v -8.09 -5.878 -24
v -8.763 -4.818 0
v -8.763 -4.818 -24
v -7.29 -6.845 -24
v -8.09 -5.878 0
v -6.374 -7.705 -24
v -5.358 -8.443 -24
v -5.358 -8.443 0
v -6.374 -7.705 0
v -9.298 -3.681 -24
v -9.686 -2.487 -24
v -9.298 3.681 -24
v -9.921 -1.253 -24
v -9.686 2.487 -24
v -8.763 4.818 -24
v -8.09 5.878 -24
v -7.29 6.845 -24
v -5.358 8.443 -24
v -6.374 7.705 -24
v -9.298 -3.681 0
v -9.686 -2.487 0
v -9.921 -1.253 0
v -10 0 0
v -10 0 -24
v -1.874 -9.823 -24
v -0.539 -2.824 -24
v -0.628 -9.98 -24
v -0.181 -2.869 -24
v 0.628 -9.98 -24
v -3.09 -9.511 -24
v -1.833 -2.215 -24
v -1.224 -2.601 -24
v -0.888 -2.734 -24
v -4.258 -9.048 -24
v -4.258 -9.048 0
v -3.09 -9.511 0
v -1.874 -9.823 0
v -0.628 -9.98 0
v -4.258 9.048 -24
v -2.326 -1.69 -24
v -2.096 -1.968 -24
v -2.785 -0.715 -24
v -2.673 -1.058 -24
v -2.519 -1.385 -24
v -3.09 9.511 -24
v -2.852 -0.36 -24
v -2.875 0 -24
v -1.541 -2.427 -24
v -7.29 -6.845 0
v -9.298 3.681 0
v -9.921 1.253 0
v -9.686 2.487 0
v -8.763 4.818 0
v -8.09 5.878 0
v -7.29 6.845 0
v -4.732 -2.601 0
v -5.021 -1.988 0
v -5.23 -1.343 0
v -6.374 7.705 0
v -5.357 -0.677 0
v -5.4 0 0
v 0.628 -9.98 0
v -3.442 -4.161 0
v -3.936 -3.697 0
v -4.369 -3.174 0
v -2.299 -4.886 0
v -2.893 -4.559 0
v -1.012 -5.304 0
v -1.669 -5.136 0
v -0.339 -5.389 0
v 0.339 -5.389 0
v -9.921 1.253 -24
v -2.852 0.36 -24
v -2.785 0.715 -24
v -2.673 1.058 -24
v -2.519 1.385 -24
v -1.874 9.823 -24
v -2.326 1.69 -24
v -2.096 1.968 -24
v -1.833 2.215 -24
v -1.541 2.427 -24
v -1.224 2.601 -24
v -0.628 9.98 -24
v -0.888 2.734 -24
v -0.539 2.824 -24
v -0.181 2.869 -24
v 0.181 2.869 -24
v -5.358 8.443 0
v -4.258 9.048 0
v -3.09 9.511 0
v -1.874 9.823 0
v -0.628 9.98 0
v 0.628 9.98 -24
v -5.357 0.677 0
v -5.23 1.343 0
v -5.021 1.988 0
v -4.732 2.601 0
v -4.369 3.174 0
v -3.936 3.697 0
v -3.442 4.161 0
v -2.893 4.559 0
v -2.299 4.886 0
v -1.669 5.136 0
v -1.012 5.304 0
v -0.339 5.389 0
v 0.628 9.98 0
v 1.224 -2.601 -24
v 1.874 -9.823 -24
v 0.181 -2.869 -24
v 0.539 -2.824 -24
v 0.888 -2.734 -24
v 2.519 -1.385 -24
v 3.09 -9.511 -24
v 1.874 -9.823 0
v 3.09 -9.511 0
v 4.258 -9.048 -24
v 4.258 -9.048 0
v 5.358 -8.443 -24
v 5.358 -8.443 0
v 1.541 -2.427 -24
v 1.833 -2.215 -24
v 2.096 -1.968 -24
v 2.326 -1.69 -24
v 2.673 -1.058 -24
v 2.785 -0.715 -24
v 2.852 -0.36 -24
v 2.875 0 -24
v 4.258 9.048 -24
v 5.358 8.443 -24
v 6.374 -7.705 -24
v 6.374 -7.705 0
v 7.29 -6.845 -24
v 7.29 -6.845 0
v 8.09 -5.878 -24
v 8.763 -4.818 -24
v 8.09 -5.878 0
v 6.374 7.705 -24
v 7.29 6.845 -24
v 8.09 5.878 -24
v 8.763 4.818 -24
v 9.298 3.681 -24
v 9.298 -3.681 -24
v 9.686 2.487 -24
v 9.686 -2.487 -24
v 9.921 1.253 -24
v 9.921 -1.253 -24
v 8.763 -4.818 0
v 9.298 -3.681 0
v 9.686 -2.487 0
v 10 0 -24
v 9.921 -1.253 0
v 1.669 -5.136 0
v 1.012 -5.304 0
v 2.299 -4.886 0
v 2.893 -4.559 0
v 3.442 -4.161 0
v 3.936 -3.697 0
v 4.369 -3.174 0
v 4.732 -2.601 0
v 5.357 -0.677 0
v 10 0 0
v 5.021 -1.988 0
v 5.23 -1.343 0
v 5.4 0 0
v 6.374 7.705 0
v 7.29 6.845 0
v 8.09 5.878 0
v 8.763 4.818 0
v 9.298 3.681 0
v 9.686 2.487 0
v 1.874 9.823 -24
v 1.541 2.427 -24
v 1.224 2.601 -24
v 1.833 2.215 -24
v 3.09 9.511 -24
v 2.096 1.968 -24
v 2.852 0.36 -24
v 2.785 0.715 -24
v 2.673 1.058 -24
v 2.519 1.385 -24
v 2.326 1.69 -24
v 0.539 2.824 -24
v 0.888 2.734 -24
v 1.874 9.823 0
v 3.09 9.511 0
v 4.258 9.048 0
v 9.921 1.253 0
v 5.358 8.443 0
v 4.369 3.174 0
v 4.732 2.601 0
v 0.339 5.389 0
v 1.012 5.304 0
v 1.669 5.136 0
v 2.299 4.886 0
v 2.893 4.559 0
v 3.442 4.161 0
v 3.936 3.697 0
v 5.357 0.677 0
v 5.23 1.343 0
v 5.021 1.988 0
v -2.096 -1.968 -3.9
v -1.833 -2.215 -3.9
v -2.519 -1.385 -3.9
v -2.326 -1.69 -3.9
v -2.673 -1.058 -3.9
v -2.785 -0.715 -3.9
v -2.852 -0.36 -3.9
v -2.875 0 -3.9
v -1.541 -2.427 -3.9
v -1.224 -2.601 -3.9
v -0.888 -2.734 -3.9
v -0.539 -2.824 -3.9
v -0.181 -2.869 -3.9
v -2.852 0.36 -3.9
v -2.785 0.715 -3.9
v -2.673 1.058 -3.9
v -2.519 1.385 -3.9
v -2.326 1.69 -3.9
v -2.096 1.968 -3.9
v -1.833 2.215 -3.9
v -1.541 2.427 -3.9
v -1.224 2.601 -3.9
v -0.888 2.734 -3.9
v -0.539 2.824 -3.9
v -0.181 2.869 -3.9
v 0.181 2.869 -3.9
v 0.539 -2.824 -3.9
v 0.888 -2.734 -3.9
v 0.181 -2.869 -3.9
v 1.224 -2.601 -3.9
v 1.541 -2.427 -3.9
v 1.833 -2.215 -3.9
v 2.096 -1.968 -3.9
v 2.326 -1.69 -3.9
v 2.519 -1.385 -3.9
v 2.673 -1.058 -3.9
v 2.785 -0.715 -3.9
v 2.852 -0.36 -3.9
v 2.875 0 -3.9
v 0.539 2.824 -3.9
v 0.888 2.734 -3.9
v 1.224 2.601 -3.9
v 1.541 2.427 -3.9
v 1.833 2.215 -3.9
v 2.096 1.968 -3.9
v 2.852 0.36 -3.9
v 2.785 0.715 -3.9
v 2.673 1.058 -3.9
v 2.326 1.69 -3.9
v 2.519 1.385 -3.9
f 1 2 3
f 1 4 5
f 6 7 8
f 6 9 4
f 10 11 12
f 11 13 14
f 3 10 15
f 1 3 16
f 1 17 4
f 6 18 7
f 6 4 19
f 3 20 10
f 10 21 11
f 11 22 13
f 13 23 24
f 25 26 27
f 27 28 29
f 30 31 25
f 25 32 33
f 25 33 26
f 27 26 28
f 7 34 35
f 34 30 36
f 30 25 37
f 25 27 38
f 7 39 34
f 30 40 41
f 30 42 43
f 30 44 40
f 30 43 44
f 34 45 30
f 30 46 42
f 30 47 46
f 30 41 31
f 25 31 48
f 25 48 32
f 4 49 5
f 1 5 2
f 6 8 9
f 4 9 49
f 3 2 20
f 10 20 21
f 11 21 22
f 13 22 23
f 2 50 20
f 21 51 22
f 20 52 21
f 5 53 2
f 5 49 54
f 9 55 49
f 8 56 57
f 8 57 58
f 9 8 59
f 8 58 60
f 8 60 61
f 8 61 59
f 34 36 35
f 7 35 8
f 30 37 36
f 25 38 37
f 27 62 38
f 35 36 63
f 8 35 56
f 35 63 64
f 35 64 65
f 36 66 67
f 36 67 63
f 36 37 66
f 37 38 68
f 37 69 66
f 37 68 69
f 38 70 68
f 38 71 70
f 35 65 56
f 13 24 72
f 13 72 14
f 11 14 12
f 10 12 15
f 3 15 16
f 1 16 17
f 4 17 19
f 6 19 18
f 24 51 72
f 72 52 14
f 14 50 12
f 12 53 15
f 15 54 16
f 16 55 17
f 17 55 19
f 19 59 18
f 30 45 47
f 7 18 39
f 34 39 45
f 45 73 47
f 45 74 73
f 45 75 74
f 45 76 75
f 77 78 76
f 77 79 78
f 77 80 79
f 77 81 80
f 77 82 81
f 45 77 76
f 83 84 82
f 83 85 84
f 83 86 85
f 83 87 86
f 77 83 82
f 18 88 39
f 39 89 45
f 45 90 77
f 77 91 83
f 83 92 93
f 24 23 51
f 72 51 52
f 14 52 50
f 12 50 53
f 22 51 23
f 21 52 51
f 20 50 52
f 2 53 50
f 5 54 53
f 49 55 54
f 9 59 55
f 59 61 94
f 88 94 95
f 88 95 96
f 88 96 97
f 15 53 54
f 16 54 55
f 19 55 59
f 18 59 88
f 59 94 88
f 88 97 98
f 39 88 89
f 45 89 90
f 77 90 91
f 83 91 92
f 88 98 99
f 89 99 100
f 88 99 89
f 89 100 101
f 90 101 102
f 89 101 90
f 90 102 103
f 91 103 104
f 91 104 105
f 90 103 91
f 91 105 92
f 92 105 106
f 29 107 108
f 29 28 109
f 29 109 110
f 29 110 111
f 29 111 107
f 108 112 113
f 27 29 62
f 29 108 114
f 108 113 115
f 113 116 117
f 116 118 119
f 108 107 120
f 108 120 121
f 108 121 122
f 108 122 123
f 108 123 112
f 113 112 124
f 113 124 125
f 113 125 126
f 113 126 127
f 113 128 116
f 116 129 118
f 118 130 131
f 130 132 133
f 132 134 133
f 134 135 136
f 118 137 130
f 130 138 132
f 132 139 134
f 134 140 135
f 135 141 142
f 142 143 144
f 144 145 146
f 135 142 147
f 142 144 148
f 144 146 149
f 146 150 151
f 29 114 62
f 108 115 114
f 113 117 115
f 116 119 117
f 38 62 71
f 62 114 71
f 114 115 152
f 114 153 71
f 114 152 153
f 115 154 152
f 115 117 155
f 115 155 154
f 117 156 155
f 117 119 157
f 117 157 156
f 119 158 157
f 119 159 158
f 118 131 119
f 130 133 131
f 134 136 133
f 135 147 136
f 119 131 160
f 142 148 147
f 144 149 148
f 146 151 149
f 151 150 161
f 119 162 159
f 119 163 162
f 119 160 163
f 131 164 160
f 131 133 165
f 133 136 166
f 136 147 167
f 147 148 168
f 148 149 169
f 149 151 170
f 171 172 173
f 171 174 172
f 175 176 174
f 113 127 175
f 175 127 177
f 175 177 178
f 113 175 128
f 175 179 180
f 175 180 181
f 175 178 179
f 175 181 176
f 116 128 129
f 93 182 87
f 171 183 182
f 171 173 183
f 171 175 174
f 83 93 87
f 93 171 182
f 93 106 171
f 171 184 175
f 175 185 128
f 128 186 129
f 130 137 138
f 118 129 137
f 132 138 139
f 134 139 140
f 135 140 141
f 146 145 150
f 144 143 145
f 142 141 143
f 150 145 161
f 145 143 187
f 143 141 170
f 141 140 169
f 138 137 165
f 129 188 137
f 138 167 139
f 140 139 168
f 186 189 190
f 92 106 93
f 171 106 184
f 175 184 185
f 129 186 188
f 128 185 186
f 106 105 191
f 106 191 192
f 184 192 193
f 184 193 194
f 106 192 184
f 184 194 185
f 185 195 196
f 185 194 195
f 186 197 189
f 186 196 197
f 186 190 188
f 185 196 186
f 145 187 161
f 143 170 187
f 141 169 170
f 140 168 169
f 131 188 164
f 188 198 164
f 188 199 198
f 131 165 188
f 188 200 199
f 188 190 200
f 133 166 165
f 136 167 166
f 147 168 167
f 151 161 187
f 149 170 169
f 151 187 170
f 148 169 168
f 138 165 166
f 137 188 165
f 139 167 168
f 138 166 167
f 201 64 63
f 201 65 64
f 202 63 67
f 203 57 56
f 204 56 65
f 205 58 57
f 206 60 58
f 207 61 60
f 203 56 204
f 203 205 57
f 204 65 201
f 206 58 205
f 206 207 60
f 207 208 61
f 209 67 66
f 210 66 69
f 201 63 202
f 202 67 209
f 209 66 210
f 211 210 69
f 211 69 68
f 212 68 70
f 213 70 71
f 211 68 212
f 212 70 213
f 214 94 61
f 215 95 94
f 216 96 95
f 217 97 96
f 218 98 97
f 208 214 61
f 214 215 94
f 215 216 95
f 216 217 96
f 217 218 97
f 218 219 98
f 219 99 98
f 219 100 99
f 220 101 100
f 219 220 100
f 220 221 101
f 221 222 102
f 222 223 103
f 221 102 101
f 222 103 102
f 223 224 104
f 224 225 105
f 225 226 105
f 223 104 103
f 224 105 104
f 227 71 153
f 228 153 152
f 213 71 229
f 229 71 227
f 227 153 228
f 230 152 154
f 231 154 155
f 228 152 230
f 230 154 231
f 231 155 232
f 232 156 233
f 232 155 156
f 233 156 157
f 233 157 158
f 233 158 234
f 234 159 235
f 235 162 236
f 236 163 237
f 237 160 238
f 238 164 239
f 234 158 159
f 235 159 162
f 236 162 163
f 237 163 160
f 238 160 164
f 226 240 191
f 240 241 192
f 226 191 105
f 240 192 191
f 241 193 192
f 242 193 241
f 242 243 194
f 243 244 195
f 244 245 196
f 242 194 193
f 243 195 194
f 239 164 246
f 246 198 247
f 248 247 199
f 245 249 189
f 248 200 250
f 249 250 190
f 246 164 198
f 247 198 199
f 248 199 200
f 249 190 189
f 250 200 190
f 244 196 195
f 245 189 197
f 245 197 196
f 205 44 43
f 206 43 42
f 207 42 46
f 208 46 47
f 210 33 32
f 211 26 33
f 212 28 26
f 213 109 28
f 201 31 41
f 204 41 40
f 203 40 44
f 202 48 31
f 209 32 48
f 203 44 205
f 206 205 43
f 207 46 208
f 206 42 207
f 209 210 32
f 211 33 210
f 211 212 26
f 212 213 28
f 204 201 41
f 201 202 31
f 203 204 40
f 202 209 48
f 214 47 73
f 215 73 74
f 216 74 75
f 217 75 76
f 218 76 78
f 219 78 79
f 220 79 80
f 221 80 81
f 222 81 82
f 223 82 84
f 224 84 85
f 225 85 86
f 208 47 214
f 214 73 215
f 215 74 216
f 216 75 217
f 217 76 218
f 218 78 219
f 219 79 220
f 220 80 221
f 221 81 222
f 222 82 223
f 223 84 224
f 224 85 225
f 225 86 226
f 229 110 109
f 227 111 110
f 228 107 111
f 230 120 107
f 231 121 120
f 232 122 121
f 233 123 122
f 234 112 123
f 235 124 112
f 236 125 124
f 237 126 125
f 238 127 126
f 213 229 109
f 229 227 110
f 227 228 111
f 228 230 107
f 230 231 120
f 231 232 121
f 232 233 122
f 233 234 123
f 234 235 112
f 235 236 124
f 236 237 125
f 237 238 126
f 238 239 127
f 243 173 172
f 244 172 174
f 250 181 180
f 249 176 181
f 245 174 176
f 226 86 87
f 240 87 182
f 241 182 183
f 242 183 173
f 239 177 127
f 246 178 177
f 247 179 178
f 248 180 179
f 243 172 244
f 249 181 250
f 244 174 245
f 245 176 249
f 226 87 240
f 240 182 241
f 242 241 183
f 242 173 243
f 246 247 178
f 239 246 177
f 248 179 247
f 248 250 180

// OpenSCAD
$fn = 50;

difference() {
	union() {
		translate(v = [0, 0, -24.0]) {
			cylinder(h = 24, r = 10.0);
		}
	}
	union() {
		translate(v = [0, 0, 0]) {
			rotate(a = [0, 0, 0]) {
				difference() {
					union() {
						translate(v = [0, 0, -27.0]) {
							cylinder(h = 27, r = 2.6);
						}
						translate(v = [0, 0, -3.9]) {
							cylinder(h = 3.9, r1 = 2.875, r2 = 5.4);
						}
						translate(v = [0, 0, -27.0]) {
							cylinder(h = 27, r = 2.875);
						}
						translate(v = [0, 0, -27.0]) {
							cylinder(h = 27, r = 2.6);
						}
					}
					union();
				}
			}
		}
	}
}
